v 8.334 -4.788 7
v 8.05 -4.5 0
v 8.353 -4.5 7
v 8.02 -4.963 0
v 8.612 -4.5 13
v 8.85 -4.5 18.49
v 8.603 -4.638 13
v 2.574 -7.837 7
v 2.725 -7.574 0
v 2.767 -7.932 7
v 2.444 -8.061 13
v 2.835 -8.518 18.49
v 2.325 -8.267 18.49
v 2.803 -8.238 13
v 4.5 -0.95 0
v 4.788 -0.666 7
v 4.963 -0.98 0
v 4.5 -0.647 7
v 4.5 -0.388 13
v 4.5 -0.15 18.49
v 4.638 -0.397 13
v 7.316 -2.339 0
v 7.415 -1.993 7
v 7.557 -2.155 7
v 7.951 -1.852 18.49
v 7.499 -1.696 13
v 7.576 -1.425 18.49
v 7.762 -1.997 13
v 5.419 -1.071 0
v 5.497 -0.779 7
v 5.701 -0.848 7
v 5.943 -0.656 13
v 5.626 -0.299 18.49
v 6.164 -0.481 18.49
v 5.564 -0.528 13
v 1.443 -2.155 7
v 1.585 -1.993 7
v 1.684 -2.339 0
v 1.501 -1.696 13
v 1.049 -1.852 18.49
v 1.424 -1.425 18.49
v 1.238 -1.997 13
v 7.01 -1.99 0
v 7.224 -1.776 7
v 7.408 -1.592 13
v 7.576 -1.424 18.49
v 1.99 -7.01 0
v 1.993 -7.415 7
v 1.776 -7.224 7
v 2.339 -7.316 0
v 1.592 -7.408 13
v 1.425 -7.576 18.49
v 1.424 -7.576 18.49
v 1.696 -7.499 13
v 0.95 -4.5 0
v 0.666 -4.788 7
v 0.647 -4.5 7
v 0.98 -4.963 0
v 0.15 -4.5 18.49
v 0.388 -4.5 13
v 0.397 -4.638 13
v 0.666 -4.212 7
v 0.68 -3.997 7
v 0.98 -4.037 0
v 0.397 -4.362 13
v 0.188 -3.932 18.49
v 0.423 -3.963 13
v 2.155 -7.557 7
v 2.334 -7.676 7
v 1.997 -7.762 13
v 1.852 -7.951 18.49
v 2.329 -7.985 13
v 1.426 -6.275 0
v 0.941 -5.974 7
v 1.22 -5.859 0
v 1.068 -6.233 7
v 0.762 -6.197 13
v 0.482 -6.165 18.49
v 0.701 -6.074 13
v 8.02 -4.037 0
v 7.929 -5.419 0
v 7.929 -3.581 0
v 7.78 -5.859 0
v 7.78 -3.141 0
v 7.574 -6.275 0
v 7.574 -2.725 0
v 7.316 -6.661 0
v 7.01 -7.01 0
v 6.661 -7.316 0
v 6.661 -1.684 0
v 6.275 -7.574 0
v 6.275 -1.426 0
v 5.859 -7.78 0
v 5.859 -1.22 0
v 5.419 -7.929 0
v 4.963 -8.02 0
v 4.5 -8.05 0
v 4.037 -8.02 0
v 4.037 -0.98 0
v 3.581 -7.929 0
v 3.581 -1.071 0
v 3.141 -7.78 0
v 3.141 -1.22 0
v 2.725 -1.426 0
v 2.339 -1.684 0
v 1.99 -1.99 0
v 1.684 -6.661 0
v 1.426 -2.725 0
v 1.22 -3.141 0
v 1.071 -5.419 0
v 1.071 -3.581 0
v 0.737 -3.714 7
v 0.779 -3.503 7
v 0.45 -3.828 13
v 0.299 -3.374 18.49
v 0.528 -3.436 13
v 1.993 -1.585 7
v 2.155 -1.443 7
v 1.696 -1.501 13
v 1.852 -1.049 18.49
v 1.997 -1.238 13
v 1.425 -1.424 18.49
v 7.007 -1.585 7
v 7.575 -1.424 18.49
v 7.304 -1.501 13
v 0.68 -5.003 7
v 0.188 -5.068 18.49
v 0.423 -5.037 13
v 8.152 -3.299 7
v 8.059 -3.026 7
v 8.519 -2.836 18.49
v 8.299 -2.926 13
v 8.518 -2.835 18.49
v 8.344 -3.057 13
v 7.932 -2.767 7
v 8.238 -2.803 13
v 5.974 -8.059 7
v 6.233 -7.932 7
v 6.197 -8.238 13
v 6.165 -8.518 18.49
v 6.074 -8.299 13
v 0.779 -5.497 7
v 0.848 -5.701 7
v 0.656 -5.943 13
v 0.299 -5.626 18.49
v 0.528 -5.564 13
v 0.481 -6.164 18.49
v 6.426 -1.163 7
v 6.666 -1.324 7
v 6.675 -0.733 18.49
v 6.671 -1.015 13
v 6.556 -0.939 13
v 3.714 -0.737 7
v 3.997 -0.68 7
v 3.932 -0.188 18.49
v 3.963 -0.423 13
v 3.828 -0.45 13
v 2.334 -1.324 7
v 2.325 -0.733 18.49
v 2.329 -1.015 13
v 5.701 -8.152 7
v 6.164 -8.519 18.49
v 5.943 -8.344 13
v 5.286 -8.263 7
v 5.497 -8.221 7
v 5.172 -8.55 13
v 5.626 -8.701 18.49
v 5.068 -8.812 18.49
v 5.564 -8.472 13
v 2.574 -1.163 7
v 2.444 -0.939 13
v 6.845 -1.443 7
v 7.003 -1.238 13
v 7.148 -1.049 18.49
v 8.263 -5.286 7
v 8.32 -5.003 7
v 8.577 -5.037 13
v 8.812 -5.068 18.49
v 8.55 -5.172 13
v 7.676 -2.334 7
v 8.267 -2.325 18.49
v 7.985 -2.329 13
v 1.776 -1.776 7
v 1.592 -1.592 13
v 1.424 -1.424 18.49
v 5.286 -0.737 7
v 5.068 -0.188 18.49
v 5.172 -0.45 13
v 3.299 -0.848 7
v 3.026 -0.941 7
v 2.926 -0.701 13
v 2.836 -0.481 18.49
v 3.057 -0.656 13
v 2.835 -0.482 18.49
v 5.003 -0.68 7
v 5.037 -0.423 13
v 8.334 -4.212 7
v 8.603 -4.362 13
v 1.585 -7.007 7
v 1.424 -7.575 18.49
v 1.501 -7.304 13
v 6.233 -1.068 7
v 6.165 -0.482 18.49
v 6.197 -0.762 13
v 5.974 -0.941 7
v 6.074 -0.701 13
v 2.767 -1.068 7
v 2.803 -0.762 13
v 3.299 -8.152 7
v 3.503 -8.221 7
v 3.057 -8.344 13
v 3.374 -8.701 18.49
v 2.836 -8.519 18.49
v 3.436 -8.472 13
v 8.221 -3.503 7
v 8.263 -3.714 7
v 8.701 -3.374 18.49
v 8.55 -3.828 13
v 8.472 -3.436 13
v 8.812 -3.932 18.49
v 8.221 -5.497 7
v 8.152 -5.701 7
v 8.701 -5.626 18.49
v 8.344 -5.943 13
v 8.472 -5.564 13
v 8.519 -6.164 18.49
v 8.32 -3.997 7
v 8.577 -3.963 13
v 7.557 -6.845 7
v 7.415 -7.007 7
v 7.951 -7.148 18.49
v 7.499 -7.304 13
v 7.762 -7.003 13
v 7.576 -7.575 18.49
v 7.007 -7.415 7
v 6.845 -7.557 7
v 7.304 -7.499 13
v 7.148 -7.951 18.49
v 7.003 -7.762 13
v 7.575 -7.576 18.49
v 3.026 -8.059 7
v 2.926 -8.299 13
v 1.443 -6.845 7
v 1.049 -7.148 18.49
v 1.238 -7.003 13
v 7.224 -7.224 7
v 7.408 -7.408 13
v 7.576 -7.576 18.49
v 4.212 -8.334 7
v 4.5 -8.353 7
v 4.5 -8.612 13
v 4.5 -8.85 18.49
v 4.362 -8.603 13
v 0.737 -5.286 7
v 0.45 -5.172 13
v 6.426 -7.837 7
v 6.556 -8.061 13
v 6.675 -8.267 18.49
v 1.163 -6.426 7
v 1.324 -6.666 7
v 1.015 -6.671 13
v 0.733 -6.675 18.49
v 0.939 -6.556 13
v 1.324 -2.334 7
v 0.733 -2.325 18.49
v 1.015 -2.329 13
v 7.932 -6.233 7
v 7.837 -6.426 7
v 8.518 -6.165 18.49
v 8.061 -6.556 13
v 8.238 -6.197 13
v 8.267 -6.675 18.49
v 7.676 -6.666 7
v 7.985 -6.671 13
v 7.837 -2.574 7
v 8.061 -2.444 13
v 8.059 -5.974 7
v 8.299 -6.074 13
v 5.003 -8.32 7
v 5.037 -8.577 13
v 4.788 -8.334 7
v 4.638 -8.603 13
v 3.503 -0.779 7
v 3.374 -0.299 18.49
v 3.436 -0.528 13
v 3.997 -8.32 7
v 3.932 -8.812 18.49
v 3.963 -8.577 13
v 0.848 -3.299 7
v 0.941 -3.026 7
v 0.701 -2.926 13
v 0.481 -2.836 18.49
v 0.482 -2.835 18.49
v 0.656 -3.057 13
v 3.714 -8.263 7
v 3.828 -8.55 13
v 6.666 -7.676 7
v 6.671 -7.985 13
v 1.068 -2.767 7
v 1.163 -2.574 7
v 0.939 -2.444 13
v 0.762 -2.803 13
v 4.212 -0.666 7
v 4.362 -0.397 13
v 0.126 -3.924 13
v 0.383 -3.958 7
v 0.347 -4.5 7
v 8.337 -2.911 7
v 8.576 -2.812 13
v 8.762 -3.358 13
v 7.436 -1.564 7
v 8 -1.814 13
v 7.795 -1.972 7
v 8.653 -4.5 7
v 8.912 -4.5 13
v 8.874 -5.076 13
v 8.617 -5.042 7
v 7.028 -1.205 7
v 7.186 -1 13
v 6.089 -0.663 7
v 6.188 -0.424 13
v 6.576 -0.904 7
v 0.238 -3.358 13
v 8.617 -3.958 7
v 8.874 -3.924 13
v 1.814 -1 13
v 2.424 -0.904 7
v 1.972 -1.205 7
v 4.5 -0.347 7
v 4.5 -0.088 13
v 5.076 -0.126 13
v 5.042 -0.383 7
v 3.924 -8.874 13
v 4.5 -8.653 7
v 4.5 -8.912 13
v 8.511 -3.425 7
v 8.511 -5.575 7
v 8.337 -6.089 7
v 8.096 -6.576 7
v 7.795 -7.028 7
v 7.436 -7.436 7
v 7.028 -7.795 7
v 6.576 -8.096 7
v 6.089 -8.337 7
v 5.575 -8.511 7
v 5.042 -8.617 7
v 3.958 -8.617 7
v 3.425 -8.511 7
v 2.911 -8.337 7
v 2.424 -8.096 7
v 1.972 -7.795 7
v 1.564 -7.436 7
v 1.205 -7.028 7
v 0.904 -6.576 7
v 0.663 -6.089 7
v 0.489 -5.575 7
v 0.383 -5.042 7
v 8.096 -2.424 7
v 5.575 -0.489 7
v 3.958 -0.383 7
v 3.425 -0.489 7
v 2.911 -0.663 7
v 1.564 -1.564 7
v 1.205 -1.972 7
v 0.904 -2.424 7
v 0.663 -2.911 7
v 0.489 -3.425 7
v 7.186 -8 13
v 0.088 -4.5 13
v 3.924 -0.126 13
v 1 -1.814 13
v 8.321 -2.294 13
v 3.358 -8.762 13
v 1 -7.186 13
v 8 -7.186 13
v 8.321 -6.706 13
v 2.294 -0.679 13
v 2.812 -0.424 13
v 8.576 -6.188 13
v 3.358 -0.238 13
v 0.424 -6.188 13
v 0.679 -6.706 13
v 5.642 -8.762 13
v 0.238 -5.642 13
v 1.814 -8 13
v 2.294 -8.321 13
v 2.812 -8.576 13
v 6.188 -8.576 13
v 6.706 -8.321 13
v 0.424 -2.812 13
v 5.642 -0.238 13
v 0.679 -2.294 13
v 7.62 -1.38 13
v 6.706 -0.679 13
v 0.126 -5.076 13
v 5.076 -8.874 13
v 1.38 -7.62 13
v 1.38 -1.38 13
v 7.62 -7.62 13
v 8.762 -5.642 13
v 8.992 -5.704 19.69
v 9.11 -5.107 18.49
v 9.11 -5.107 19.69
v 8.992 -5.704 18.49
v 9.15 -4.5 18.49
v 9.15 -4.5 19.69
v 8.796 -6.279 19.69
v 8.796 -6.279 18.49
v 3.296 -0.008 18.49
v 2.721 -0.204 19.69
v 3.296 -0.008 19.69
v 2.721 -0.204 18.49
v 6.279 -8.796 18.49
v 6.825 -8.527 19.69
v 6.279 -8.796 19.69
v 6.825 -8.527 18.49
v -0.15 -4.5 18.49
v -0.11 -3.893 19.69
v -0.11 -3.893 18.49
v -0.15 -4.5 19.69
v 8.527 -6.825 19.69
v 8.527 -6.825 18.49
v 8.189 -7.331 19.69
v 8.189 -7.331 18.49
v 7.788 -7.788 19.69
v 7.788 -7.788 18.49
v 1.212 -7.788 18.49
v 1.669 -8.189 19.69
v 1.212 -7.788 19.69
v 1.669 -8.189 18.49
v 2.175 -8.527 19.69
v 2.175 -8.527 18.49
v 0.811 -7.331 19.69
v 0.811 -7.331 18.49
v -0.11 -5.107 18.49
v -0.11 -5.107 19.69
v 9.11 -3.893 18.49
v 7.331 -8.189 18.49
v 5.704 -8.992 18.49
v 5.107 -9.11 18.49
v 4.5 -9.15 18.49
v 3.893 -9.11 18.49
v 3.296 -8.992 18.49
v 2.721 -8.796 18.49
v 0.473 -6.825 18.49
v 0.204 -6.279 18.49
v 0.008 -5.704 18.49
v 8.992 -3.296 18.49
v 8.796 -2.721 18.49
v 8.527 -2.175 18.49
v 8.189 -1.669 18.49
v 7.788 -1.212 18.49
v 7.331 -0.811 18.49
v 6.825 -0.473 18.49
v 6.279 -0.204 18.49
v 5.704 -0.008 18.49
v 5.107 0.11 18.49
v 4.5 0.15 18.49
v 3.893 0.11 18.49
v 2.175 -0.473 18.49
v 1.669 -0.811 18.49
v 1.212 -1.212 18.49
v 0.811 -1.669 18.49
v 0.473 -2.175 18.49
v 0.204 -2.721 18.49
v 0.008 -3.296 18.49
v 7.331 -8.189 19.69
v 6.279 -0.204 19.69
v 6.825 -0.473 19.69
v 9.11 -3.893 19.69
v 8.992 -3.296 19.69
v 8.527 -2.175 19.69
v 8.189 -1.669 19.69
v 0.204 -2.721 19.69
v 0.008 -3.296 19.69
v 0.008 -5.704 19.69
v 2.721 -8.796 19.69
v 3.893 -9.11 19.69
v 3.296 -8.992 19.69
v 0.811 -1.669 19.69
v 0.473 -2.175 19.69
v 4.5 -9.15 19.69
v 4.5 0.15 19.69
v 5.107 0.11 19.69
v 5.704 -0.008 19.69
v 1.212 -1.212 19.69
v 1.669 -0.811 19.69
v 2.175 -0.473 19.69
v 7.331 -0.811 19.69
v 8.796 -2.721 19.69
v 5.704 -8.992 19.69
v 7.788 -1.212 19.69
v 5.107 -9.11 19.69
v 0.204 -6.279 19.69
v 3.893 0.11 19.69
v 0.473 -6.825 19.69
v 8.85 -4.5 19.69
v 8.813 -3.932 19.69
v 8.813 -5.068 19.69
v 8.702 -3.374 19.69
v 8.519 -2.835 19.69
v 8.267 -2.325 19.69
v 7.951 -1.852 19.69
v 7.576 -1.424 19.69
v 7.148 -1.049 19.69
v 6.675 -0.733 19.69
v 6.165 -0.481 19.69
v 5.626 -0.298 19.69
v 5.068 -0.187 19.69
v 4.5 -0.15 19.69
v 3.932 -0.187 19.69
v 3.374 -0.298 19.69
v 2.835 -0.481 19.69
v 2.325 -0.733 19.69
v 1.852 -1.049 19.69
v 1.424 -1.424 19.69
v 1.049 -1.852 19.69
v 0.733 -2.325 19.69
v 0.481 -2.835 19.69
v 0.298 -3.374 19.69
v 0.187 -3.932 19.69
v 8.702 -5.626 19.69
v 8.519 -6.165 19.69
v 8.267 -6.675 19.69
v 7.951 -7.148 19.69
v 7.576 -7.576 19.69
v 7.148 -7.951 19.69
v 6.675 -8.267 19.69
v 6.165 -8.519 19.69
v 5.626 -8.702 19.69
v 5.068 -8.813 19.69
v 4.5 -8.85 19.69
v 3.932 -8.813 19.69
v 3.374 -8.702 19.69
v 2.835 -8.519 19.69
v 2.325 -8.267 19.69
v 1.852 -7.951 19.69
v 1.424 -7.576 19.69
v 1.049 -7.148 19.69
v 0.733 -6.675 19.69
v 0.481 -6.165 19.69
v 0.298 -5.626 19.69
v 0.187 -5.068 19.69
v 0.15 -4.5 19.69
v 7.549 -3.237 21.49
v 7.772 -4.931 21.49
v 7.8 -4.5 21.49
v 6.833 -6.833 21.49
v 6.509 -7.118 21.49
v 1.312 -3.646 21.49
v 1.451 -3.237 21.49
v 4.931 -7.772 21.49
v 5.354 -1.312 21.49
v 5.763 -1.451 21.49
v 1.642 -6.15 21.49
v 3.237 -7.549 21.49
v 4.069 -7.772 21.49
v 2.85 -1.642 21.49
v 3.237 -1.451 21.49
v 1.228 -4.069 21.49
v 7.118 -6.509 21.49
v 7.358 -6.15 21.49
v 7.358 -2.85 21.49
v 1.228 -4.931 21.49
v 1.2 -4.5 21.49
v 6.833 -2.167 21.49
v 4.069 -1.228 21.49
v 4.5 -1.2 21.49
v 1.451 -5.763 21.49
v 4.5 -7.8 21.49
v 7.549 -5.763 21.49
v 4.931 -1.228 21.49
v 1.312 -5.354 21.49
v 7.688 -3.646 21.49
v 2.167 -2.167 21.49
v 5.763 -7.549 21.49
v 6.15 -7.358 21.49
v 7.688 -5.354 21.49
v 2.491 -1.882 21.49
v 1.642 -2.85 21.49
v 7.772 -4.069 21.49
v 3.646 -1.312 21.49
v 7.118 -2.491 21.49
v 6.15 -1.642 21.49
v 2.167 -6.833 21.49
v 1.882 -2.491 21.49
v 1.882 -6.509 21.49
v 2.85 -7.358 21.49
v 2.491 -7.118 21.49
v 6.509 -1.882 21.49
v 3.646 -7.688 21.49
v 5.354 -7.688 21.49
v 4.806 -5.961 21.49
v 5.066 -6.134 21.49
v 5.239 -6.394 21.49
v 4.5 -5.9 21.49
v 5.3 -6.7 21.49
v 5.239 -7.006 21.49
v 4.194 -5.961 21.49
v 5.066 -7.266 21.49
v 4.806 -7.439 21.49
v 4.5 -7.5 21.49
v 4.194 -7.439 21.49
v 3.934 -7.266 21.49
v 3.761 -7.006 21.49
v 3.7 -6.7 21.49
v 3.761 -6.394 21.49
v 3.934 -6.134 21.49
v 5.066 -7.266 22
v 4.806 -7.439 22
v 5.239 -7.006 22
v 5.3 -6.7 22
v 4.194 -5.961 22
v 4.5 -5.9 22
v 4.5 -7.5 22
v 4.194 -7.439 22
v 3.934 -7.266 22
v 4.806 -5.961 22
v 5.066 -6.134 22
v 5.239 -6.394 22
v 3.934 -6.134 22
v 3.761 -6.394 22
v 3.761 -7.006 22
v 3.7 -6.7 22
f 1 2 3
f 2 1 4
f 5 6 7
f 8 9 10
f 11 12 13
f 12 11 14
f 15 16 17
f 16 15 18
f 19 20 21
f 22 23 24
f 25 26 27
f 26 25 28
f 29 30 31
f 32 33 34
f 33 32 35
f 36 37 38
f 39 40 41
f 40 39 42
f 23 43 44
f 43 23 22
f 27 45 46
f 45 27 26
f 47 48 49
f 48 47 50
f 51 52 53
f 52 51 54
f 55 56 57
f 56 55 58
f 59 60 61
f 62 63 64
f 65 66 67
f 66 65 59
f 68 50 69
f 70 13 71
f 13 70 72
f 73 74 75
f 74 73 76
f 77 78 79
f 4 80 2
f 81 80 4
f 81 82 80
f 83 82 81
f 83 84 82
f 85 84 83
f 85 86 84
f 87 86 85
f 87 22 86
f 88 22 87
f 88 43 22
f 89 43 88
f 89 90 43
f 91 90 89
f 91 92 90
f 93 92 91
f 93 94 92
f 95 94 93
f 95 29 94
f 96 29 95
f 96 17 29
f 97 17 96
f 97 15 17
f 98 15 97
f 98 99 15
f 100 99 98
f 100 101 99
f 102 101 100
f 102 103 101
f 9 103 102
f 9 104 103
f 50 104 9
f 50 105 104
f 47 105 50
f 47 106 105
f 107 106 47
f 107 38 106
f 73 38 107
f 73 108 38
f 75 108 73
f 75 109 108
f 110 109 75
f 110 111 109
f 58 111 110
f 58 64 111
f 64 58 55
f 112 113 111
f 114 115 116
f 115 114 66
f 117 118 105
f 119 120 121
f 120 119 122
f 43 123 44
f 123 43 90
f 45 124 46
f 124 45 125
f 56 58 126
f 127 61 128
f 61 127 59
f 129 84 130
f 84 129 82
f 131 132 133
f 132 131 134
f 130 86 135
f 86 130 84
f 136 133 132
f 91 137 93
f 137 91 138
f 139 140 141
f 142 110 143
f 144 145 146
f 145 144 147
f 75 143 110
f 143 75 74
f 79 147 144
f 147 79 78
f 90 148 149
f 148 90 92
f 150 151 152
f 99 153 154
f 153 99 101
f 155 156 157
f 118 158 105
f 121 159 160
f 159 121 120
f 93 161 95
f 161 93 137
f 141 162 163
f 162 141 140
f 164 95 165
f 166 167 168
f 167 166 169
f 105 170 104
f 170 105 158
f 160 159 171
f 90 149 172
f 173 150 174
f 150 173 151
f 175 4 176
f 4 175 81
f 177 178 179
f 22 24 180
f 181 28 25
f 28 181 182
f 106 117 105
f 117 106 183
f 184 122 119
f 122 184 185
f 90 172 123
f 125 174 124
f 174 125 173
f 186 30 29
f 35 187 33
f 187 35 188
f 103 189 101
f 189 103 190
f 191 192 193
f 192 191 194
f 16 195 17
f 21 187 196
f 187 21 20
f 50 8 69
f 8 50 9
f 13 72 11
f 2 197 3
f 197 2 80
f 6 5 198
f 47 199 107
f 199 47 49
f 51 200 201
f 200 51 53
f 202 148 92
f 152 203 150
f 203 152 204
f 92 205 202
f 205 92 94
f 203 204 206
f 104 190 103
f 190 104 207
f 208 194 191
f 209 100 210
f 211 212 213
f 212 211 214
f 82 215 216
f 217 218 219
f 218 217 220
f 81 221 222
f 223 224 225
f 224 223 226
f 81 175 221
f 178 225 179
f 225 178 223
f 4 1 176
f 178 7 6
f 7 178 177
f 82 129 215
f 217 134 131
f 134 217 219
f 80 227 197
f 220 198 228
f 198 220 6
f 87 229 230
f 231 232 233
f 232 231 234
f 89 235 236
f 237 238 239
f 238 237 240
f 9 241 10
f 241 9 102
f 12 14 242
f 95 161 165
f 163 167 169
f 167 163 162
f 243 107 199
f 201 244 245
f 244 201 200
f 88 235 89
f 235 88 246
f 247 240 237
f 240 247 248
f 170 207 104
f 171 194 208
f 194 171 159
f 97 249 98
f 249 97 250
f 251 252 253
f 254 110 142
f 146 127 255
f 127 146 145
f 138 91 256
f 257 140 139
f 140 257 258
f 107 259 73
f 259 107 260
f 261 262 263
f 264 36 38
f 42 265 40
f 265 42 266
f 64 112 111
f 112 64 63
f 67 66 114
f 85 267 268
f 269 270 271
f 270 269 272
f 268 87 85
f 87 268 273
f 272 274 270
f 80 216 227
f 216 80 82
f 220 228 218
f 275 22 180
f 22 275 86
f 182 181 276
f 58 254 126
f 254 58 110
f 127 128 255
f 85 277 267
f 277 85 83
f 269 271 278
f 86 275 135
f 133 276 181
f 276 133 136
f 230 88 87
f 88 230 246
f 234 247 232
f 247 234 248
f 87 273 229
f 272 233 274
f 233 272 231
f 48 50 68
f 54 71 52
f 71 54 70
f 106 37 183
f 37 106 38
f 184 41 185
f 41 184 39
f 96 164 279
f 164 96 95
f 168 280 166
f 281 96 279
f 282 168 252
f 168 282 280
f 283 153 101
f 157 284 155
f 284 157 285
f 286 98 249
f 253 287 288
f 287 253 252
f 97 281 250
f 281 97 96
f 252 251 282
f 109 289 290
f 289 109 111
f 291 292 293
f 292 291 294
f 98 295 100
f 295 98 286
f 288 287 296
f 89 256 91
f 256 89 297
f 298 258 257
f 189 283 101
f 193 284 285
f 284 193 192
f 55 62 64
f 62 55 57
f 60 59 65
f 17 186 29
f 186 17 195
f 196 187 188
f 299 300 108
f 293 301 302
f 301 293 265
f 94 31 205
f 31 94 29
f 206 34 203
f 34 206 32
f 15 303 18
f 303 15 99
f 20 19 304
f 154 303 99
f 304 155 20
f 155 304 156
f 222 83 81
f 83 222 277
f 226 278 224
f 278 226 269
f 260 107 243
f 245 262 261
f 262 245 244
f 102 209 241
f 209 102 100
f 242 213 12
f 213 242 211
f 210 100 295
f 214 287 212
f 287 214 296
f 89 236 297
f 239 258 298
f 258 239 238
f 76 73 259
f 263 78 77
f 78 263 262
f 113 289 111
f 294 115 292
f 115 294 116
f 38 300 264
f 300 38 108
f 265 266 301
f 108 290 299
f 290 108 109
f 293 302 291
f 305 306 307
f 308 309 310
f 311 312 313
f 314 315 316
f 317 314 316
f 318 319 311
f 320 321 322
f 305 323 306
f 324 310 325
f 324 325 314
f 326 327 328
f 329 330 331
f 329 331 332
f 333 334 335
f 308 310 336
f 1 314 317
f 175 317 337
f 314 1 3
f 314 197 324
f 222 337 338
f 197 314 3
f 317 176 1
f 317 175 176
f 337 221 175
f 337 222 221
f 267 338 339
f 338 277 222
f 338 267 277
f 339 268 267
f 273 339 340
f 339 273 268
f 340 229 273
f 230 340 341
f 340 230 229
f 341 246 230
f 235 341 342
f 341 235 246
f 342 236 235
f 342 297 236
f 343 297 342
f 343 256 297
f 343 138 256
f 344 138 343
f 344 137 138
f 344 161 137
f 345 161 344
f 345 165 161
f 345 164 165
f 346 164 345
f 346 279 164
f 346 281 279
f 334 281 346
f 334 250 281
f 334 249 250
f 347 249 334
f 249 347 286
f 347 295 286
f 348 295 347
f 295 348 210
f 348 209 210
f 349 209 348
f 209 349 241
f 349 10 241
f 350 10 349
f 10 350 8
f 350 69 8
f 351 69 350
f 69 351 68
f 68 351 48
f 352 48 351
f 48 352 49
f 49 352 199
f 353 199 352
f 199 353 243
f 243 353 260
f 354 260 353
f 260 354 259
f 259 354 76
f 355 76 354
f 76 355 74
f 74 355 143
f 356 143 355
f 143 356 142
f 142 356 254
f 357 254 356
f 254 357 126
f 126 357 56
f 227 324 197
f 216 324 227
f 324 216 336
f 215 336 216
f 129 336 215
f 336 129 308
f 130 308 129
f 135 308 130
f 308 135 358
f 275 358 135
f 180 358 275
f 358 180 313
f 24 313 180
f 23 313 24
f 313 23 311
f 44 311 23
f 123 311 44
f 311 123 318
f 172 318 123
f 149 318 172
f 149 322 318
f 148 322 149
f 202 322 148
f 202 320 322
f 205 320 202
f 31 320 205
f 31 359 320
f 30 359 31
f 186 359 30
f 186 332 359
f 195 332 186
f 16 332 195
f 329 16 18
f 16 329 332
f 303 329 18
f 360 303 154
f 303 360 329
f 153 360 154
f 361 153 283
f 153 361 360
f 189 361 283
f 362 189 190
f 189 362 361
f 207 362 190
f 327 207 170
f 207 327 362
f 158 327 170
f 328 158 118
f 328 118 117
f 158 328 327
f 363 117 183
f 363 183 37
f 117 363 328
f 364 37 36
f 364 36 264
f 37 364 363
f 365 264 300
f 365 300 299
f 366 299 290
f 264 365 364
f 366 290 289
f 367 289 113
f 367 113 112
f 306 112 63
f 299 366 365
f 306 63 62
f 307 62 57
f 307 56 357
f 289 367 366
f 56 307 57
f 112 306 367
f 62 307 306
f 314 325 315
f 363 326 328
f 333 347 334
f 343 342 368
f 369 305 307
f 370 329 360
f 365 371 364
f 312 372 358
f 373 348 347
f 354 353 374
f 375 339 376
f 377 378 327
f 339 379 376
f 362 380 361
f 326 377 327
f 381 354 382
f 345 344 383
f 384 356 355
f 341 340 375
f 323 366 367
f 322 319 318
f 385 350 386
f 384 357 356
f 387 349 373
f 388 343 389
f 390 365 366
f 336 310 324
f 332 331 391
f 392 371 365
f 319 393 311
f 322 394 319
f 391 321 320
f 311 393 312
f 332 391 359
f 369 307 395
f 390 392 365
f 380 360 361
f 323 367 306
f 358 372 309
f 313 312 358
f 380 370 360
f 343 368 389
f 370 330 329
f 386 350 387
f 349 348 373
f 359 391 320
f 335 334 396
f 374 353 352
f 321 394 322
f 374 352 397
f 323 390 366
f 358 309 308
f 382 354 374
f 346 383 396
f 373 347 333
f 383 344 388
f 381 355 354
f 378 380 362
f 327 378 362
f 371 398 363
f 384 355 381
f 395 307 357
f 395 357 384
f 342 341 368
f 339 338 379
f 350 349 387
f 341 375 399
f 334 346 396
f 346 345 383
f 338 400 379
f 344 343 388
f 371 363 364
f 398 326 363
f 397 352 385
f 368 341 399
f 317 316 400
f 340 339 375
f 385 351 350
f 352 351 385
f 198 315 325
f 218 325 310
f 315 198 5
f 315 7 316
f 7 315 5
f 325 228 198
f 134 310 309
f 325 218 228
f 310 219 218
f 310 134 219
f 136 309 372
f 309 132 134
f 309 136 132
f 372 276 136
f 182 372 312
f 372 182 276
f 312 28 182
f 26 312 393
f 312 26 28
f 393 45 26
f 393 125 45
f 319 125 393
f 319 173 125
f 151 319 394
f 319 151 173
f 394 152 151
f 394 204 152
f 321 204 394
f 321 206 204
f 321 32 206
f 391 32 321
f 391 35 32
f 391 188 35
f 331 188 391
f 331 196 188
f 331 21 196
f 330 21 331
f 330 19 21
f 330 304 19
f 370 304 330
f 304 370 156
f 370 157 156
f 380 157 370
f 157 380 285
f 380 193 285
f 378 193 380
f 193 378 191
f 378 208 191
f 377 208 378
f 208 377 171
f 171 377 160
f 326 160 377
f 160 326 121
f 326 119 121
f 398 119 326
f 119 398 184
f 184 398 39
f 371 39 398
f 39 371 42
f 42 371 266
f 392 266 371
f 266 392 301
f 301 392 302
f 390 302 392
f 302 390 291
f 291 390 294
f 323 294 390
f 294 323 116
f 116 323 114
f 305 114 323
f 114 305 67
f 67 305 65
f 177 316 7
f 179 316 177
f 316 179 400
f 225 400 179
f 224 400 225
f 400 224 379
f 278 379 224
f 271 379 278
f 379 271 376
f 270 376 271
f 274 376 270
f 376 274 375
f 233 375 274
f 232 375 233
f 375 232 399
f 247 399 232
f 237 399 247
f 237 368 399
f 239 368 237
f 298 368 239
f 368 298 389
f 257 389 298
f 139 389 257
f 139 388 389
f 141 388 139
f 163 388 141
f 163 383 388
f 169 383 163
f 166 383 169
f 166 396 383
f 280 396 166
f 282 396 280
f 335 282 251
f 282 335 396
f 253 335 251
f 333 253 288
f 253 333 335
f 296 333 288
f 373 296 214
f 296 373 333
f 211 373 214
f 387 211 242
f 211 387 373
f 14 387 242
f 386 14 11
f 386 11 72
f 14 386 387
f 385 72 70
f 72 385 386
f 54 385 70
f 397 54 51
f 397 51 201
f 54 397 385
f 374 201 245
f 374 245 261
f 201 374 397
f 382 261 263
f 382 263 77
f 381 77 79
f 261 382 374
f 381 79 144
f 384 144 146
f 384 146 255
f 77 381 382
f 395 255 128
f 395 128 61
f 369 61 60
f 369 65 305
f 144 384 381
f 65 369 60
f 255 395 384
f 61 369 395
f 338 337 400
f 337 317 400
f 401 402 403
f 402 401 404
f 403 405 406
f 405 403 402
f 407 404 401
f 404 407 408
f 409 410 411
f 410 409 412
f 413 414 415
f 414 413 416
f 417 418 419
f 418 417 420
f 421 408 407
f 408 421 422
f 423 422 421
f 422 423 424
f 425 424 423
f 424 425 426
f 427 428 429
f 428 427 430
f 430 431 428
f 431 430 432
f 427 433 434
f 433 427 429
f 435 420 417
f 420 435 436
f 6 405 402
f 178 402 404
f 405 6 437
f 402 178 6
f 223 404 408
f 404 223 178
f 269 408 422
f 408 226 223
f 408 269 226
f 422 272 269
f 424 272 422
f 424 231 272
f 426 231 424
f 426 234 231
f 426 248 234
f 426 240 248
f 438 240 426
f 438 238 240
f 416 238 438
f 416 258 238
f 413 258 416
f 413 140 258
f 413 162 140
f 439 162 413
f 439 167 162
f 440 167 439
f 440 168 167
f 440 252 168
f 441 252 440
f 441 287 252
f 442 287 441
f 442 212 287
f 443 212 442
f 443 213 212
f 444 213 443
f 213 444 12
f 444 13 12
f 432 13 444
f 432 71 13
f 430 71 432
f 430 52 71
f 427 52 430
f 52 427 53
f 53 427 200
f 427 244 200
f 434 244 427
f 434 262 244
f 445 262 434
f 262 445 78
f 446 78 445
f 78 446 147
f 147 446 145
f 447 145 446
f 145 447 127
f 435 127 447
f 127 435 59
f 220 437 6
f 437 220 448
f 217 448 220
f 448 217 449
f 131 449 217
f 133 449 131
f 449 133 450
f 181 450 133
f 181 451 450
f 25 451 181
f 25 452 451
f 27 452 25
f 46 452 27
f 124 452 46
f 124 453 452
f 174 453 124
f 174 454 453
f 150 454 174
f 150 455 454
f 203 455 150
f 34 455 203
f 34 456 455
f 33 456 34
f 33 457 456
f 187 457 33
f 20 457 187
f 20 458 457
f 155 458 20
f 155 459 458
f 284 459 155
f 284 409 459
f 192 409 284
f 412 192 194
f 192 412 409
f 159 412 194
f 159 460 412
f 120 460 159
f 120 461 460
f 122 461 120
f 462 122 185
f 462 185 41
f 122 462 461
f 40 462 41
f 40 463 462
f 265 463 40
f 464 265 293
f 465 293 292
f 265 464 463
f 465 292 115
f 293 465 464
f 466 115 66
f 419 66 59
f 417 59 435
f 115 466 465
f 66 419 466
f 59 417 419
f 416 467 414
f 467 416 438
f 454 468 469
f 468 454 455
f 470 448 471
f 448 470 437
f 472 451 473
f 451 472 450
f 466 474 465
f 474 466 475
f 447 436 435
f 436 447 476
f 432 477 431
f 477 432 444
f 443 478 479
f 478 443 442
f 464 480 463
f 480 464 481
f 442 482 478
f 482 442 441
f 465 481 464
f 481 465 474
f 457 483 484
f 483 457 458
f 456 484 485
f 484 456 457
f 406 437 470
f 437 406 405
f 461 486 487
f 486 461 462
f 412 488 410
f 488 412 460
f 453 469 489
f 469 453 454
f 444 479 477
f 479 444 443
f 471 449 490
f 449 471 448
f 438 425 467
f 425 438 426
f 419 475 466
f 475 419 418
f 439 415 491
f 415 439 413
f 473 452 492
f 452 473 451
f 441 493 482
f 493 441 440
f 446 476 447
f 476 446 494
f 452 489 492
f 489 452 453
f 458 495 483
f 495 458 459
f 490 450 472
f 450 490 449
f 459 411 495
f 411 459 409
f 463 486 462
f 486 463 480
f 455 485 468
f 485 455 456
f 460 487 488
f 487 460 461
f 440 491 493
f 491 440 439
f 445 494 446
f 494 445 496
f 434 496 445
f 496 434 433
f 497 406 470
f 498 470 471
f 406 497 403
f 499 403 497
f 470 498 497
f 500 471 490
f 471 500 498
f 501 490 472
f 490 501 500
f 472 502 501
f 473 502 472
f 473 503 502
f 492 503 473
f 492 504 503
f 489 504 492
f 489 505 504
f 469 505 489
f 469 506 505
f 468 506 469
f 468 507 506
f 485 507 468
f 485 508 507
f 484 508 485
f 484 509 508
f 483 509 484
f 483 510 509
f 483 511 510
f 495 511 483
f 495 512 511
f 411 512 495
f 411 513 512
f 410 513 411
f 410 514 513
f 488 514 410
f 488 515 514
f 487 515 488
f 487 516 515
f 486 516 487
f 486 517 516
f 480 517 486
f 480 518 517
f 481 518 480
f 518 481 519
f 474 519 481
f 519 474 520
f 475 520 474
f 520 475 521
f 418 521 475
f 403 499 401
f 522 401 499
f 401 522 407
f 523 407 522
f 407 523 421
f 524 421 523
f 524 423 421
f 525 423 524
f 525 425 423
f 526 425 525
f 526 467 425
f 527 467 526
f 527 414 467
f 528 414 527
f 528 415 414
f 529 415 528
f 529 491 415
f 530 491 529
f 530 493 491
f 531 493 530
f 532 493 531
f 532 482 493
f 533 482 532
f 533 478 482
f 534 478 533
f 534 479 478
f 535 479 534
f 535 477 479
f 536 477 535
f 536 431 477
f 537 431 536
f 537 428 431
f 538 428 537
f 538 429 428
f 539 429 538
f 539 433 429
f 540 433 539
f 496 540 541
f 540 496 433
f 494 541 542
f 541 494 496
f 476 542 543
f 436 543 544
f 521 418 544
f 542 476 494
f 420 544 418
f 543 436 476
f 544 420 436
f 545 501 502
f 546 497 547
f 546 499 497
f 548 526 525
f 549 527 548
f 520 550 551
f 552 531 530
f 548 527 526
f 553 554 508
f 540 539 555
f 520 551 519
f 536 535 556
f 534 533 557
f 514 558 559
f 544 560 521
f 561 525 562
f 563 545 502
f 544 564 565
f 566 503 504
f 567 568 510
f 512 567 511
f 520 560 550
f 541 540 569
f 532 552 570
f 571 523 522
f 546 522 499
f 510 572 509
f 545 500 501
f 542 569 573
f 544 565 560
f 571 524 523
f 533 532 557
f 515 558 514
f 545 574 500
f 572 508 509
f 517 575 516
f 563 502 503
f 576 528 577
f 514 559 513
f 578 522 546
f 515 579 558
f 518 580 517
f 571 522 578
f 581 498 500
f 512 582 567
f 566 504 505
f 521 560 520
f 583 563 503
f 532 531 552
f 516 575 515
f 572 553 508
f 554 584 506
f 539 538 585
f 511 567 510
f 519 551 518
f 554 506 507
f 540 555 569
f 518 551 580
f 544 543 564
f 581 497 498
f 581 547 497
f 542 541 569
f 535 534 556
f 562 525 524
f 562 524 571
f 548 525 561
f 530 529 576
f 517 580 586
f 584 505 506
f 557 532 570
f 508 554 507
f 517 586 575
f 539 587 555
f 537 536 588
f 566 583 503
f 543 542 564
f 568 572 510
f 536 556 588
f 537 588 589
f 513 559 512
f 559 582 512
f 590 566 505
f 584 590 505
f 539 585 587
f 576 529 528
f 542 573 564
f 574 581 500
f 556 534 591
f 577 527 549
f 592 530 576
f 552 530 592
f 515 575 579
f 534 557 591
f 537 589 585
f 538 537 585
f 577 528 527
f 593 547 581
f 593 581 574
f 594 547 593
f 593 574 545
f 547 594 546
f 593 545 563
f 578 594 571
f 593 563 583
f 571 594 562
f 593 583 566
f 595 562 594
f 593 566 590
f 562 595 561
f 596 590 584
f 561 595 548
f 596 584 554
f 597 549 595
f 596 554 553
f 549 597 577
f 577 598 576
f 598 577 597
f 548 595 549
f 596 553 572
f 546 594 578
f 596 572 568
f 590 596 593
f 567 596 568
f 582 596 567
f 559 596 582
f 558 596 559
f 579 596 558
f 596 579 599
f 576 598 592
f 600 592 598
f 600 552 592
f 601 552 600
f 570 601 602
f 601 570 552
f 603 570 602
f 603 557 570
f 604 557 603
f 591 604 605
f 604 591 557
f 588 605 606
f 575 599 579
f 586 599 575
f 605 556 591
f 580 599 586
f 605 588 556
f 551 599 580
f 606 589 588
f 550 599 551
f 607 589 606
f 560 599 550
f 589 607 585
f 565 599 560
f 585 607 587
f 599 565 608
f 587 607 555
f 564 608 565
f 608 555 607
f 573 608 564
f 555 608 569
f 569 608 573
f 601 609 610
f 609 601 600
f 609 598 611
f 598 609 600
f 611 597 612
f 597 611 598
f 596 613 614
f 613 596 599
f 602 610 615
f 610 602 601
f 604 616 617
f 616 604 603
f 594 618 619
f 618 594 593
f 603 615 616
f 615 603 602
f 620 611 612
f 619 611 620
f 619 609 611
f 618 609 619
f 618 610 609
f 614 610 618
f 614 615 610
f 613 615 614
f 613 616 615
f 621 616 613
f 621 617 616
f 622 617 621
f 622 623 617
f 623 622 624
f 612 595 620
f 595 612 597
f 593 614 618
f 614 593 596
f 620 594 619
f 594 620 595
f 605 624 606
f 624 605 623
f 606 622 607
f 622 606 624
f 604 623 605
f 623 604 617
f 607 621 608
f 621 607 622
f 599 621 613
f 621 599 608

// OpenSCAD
// Takeaway_Cup.stl  -  Store Versile room frame (Rev C)
// Quantity: 1   Filament: White (e.g. PLA Basic Jade White / Matte Ivory White)
// Print: layer 0.12 mm, infill 20%, 2 walls, brim 0 mm, NO supports
// Orientation: flat  (as installed)
// Notes: Plain cup, no logo. Optional own-brand sticker on the sleeve.
// The library draws parts with their front toward +Y; mirror([0,1,0]) makes the real
// part face the viewer correctly (see build.py). Edit dimensions in versile_parts.scad.
use <../versile_parts.scad>

mirror([0, 1, 0]) takeaway_cup();
